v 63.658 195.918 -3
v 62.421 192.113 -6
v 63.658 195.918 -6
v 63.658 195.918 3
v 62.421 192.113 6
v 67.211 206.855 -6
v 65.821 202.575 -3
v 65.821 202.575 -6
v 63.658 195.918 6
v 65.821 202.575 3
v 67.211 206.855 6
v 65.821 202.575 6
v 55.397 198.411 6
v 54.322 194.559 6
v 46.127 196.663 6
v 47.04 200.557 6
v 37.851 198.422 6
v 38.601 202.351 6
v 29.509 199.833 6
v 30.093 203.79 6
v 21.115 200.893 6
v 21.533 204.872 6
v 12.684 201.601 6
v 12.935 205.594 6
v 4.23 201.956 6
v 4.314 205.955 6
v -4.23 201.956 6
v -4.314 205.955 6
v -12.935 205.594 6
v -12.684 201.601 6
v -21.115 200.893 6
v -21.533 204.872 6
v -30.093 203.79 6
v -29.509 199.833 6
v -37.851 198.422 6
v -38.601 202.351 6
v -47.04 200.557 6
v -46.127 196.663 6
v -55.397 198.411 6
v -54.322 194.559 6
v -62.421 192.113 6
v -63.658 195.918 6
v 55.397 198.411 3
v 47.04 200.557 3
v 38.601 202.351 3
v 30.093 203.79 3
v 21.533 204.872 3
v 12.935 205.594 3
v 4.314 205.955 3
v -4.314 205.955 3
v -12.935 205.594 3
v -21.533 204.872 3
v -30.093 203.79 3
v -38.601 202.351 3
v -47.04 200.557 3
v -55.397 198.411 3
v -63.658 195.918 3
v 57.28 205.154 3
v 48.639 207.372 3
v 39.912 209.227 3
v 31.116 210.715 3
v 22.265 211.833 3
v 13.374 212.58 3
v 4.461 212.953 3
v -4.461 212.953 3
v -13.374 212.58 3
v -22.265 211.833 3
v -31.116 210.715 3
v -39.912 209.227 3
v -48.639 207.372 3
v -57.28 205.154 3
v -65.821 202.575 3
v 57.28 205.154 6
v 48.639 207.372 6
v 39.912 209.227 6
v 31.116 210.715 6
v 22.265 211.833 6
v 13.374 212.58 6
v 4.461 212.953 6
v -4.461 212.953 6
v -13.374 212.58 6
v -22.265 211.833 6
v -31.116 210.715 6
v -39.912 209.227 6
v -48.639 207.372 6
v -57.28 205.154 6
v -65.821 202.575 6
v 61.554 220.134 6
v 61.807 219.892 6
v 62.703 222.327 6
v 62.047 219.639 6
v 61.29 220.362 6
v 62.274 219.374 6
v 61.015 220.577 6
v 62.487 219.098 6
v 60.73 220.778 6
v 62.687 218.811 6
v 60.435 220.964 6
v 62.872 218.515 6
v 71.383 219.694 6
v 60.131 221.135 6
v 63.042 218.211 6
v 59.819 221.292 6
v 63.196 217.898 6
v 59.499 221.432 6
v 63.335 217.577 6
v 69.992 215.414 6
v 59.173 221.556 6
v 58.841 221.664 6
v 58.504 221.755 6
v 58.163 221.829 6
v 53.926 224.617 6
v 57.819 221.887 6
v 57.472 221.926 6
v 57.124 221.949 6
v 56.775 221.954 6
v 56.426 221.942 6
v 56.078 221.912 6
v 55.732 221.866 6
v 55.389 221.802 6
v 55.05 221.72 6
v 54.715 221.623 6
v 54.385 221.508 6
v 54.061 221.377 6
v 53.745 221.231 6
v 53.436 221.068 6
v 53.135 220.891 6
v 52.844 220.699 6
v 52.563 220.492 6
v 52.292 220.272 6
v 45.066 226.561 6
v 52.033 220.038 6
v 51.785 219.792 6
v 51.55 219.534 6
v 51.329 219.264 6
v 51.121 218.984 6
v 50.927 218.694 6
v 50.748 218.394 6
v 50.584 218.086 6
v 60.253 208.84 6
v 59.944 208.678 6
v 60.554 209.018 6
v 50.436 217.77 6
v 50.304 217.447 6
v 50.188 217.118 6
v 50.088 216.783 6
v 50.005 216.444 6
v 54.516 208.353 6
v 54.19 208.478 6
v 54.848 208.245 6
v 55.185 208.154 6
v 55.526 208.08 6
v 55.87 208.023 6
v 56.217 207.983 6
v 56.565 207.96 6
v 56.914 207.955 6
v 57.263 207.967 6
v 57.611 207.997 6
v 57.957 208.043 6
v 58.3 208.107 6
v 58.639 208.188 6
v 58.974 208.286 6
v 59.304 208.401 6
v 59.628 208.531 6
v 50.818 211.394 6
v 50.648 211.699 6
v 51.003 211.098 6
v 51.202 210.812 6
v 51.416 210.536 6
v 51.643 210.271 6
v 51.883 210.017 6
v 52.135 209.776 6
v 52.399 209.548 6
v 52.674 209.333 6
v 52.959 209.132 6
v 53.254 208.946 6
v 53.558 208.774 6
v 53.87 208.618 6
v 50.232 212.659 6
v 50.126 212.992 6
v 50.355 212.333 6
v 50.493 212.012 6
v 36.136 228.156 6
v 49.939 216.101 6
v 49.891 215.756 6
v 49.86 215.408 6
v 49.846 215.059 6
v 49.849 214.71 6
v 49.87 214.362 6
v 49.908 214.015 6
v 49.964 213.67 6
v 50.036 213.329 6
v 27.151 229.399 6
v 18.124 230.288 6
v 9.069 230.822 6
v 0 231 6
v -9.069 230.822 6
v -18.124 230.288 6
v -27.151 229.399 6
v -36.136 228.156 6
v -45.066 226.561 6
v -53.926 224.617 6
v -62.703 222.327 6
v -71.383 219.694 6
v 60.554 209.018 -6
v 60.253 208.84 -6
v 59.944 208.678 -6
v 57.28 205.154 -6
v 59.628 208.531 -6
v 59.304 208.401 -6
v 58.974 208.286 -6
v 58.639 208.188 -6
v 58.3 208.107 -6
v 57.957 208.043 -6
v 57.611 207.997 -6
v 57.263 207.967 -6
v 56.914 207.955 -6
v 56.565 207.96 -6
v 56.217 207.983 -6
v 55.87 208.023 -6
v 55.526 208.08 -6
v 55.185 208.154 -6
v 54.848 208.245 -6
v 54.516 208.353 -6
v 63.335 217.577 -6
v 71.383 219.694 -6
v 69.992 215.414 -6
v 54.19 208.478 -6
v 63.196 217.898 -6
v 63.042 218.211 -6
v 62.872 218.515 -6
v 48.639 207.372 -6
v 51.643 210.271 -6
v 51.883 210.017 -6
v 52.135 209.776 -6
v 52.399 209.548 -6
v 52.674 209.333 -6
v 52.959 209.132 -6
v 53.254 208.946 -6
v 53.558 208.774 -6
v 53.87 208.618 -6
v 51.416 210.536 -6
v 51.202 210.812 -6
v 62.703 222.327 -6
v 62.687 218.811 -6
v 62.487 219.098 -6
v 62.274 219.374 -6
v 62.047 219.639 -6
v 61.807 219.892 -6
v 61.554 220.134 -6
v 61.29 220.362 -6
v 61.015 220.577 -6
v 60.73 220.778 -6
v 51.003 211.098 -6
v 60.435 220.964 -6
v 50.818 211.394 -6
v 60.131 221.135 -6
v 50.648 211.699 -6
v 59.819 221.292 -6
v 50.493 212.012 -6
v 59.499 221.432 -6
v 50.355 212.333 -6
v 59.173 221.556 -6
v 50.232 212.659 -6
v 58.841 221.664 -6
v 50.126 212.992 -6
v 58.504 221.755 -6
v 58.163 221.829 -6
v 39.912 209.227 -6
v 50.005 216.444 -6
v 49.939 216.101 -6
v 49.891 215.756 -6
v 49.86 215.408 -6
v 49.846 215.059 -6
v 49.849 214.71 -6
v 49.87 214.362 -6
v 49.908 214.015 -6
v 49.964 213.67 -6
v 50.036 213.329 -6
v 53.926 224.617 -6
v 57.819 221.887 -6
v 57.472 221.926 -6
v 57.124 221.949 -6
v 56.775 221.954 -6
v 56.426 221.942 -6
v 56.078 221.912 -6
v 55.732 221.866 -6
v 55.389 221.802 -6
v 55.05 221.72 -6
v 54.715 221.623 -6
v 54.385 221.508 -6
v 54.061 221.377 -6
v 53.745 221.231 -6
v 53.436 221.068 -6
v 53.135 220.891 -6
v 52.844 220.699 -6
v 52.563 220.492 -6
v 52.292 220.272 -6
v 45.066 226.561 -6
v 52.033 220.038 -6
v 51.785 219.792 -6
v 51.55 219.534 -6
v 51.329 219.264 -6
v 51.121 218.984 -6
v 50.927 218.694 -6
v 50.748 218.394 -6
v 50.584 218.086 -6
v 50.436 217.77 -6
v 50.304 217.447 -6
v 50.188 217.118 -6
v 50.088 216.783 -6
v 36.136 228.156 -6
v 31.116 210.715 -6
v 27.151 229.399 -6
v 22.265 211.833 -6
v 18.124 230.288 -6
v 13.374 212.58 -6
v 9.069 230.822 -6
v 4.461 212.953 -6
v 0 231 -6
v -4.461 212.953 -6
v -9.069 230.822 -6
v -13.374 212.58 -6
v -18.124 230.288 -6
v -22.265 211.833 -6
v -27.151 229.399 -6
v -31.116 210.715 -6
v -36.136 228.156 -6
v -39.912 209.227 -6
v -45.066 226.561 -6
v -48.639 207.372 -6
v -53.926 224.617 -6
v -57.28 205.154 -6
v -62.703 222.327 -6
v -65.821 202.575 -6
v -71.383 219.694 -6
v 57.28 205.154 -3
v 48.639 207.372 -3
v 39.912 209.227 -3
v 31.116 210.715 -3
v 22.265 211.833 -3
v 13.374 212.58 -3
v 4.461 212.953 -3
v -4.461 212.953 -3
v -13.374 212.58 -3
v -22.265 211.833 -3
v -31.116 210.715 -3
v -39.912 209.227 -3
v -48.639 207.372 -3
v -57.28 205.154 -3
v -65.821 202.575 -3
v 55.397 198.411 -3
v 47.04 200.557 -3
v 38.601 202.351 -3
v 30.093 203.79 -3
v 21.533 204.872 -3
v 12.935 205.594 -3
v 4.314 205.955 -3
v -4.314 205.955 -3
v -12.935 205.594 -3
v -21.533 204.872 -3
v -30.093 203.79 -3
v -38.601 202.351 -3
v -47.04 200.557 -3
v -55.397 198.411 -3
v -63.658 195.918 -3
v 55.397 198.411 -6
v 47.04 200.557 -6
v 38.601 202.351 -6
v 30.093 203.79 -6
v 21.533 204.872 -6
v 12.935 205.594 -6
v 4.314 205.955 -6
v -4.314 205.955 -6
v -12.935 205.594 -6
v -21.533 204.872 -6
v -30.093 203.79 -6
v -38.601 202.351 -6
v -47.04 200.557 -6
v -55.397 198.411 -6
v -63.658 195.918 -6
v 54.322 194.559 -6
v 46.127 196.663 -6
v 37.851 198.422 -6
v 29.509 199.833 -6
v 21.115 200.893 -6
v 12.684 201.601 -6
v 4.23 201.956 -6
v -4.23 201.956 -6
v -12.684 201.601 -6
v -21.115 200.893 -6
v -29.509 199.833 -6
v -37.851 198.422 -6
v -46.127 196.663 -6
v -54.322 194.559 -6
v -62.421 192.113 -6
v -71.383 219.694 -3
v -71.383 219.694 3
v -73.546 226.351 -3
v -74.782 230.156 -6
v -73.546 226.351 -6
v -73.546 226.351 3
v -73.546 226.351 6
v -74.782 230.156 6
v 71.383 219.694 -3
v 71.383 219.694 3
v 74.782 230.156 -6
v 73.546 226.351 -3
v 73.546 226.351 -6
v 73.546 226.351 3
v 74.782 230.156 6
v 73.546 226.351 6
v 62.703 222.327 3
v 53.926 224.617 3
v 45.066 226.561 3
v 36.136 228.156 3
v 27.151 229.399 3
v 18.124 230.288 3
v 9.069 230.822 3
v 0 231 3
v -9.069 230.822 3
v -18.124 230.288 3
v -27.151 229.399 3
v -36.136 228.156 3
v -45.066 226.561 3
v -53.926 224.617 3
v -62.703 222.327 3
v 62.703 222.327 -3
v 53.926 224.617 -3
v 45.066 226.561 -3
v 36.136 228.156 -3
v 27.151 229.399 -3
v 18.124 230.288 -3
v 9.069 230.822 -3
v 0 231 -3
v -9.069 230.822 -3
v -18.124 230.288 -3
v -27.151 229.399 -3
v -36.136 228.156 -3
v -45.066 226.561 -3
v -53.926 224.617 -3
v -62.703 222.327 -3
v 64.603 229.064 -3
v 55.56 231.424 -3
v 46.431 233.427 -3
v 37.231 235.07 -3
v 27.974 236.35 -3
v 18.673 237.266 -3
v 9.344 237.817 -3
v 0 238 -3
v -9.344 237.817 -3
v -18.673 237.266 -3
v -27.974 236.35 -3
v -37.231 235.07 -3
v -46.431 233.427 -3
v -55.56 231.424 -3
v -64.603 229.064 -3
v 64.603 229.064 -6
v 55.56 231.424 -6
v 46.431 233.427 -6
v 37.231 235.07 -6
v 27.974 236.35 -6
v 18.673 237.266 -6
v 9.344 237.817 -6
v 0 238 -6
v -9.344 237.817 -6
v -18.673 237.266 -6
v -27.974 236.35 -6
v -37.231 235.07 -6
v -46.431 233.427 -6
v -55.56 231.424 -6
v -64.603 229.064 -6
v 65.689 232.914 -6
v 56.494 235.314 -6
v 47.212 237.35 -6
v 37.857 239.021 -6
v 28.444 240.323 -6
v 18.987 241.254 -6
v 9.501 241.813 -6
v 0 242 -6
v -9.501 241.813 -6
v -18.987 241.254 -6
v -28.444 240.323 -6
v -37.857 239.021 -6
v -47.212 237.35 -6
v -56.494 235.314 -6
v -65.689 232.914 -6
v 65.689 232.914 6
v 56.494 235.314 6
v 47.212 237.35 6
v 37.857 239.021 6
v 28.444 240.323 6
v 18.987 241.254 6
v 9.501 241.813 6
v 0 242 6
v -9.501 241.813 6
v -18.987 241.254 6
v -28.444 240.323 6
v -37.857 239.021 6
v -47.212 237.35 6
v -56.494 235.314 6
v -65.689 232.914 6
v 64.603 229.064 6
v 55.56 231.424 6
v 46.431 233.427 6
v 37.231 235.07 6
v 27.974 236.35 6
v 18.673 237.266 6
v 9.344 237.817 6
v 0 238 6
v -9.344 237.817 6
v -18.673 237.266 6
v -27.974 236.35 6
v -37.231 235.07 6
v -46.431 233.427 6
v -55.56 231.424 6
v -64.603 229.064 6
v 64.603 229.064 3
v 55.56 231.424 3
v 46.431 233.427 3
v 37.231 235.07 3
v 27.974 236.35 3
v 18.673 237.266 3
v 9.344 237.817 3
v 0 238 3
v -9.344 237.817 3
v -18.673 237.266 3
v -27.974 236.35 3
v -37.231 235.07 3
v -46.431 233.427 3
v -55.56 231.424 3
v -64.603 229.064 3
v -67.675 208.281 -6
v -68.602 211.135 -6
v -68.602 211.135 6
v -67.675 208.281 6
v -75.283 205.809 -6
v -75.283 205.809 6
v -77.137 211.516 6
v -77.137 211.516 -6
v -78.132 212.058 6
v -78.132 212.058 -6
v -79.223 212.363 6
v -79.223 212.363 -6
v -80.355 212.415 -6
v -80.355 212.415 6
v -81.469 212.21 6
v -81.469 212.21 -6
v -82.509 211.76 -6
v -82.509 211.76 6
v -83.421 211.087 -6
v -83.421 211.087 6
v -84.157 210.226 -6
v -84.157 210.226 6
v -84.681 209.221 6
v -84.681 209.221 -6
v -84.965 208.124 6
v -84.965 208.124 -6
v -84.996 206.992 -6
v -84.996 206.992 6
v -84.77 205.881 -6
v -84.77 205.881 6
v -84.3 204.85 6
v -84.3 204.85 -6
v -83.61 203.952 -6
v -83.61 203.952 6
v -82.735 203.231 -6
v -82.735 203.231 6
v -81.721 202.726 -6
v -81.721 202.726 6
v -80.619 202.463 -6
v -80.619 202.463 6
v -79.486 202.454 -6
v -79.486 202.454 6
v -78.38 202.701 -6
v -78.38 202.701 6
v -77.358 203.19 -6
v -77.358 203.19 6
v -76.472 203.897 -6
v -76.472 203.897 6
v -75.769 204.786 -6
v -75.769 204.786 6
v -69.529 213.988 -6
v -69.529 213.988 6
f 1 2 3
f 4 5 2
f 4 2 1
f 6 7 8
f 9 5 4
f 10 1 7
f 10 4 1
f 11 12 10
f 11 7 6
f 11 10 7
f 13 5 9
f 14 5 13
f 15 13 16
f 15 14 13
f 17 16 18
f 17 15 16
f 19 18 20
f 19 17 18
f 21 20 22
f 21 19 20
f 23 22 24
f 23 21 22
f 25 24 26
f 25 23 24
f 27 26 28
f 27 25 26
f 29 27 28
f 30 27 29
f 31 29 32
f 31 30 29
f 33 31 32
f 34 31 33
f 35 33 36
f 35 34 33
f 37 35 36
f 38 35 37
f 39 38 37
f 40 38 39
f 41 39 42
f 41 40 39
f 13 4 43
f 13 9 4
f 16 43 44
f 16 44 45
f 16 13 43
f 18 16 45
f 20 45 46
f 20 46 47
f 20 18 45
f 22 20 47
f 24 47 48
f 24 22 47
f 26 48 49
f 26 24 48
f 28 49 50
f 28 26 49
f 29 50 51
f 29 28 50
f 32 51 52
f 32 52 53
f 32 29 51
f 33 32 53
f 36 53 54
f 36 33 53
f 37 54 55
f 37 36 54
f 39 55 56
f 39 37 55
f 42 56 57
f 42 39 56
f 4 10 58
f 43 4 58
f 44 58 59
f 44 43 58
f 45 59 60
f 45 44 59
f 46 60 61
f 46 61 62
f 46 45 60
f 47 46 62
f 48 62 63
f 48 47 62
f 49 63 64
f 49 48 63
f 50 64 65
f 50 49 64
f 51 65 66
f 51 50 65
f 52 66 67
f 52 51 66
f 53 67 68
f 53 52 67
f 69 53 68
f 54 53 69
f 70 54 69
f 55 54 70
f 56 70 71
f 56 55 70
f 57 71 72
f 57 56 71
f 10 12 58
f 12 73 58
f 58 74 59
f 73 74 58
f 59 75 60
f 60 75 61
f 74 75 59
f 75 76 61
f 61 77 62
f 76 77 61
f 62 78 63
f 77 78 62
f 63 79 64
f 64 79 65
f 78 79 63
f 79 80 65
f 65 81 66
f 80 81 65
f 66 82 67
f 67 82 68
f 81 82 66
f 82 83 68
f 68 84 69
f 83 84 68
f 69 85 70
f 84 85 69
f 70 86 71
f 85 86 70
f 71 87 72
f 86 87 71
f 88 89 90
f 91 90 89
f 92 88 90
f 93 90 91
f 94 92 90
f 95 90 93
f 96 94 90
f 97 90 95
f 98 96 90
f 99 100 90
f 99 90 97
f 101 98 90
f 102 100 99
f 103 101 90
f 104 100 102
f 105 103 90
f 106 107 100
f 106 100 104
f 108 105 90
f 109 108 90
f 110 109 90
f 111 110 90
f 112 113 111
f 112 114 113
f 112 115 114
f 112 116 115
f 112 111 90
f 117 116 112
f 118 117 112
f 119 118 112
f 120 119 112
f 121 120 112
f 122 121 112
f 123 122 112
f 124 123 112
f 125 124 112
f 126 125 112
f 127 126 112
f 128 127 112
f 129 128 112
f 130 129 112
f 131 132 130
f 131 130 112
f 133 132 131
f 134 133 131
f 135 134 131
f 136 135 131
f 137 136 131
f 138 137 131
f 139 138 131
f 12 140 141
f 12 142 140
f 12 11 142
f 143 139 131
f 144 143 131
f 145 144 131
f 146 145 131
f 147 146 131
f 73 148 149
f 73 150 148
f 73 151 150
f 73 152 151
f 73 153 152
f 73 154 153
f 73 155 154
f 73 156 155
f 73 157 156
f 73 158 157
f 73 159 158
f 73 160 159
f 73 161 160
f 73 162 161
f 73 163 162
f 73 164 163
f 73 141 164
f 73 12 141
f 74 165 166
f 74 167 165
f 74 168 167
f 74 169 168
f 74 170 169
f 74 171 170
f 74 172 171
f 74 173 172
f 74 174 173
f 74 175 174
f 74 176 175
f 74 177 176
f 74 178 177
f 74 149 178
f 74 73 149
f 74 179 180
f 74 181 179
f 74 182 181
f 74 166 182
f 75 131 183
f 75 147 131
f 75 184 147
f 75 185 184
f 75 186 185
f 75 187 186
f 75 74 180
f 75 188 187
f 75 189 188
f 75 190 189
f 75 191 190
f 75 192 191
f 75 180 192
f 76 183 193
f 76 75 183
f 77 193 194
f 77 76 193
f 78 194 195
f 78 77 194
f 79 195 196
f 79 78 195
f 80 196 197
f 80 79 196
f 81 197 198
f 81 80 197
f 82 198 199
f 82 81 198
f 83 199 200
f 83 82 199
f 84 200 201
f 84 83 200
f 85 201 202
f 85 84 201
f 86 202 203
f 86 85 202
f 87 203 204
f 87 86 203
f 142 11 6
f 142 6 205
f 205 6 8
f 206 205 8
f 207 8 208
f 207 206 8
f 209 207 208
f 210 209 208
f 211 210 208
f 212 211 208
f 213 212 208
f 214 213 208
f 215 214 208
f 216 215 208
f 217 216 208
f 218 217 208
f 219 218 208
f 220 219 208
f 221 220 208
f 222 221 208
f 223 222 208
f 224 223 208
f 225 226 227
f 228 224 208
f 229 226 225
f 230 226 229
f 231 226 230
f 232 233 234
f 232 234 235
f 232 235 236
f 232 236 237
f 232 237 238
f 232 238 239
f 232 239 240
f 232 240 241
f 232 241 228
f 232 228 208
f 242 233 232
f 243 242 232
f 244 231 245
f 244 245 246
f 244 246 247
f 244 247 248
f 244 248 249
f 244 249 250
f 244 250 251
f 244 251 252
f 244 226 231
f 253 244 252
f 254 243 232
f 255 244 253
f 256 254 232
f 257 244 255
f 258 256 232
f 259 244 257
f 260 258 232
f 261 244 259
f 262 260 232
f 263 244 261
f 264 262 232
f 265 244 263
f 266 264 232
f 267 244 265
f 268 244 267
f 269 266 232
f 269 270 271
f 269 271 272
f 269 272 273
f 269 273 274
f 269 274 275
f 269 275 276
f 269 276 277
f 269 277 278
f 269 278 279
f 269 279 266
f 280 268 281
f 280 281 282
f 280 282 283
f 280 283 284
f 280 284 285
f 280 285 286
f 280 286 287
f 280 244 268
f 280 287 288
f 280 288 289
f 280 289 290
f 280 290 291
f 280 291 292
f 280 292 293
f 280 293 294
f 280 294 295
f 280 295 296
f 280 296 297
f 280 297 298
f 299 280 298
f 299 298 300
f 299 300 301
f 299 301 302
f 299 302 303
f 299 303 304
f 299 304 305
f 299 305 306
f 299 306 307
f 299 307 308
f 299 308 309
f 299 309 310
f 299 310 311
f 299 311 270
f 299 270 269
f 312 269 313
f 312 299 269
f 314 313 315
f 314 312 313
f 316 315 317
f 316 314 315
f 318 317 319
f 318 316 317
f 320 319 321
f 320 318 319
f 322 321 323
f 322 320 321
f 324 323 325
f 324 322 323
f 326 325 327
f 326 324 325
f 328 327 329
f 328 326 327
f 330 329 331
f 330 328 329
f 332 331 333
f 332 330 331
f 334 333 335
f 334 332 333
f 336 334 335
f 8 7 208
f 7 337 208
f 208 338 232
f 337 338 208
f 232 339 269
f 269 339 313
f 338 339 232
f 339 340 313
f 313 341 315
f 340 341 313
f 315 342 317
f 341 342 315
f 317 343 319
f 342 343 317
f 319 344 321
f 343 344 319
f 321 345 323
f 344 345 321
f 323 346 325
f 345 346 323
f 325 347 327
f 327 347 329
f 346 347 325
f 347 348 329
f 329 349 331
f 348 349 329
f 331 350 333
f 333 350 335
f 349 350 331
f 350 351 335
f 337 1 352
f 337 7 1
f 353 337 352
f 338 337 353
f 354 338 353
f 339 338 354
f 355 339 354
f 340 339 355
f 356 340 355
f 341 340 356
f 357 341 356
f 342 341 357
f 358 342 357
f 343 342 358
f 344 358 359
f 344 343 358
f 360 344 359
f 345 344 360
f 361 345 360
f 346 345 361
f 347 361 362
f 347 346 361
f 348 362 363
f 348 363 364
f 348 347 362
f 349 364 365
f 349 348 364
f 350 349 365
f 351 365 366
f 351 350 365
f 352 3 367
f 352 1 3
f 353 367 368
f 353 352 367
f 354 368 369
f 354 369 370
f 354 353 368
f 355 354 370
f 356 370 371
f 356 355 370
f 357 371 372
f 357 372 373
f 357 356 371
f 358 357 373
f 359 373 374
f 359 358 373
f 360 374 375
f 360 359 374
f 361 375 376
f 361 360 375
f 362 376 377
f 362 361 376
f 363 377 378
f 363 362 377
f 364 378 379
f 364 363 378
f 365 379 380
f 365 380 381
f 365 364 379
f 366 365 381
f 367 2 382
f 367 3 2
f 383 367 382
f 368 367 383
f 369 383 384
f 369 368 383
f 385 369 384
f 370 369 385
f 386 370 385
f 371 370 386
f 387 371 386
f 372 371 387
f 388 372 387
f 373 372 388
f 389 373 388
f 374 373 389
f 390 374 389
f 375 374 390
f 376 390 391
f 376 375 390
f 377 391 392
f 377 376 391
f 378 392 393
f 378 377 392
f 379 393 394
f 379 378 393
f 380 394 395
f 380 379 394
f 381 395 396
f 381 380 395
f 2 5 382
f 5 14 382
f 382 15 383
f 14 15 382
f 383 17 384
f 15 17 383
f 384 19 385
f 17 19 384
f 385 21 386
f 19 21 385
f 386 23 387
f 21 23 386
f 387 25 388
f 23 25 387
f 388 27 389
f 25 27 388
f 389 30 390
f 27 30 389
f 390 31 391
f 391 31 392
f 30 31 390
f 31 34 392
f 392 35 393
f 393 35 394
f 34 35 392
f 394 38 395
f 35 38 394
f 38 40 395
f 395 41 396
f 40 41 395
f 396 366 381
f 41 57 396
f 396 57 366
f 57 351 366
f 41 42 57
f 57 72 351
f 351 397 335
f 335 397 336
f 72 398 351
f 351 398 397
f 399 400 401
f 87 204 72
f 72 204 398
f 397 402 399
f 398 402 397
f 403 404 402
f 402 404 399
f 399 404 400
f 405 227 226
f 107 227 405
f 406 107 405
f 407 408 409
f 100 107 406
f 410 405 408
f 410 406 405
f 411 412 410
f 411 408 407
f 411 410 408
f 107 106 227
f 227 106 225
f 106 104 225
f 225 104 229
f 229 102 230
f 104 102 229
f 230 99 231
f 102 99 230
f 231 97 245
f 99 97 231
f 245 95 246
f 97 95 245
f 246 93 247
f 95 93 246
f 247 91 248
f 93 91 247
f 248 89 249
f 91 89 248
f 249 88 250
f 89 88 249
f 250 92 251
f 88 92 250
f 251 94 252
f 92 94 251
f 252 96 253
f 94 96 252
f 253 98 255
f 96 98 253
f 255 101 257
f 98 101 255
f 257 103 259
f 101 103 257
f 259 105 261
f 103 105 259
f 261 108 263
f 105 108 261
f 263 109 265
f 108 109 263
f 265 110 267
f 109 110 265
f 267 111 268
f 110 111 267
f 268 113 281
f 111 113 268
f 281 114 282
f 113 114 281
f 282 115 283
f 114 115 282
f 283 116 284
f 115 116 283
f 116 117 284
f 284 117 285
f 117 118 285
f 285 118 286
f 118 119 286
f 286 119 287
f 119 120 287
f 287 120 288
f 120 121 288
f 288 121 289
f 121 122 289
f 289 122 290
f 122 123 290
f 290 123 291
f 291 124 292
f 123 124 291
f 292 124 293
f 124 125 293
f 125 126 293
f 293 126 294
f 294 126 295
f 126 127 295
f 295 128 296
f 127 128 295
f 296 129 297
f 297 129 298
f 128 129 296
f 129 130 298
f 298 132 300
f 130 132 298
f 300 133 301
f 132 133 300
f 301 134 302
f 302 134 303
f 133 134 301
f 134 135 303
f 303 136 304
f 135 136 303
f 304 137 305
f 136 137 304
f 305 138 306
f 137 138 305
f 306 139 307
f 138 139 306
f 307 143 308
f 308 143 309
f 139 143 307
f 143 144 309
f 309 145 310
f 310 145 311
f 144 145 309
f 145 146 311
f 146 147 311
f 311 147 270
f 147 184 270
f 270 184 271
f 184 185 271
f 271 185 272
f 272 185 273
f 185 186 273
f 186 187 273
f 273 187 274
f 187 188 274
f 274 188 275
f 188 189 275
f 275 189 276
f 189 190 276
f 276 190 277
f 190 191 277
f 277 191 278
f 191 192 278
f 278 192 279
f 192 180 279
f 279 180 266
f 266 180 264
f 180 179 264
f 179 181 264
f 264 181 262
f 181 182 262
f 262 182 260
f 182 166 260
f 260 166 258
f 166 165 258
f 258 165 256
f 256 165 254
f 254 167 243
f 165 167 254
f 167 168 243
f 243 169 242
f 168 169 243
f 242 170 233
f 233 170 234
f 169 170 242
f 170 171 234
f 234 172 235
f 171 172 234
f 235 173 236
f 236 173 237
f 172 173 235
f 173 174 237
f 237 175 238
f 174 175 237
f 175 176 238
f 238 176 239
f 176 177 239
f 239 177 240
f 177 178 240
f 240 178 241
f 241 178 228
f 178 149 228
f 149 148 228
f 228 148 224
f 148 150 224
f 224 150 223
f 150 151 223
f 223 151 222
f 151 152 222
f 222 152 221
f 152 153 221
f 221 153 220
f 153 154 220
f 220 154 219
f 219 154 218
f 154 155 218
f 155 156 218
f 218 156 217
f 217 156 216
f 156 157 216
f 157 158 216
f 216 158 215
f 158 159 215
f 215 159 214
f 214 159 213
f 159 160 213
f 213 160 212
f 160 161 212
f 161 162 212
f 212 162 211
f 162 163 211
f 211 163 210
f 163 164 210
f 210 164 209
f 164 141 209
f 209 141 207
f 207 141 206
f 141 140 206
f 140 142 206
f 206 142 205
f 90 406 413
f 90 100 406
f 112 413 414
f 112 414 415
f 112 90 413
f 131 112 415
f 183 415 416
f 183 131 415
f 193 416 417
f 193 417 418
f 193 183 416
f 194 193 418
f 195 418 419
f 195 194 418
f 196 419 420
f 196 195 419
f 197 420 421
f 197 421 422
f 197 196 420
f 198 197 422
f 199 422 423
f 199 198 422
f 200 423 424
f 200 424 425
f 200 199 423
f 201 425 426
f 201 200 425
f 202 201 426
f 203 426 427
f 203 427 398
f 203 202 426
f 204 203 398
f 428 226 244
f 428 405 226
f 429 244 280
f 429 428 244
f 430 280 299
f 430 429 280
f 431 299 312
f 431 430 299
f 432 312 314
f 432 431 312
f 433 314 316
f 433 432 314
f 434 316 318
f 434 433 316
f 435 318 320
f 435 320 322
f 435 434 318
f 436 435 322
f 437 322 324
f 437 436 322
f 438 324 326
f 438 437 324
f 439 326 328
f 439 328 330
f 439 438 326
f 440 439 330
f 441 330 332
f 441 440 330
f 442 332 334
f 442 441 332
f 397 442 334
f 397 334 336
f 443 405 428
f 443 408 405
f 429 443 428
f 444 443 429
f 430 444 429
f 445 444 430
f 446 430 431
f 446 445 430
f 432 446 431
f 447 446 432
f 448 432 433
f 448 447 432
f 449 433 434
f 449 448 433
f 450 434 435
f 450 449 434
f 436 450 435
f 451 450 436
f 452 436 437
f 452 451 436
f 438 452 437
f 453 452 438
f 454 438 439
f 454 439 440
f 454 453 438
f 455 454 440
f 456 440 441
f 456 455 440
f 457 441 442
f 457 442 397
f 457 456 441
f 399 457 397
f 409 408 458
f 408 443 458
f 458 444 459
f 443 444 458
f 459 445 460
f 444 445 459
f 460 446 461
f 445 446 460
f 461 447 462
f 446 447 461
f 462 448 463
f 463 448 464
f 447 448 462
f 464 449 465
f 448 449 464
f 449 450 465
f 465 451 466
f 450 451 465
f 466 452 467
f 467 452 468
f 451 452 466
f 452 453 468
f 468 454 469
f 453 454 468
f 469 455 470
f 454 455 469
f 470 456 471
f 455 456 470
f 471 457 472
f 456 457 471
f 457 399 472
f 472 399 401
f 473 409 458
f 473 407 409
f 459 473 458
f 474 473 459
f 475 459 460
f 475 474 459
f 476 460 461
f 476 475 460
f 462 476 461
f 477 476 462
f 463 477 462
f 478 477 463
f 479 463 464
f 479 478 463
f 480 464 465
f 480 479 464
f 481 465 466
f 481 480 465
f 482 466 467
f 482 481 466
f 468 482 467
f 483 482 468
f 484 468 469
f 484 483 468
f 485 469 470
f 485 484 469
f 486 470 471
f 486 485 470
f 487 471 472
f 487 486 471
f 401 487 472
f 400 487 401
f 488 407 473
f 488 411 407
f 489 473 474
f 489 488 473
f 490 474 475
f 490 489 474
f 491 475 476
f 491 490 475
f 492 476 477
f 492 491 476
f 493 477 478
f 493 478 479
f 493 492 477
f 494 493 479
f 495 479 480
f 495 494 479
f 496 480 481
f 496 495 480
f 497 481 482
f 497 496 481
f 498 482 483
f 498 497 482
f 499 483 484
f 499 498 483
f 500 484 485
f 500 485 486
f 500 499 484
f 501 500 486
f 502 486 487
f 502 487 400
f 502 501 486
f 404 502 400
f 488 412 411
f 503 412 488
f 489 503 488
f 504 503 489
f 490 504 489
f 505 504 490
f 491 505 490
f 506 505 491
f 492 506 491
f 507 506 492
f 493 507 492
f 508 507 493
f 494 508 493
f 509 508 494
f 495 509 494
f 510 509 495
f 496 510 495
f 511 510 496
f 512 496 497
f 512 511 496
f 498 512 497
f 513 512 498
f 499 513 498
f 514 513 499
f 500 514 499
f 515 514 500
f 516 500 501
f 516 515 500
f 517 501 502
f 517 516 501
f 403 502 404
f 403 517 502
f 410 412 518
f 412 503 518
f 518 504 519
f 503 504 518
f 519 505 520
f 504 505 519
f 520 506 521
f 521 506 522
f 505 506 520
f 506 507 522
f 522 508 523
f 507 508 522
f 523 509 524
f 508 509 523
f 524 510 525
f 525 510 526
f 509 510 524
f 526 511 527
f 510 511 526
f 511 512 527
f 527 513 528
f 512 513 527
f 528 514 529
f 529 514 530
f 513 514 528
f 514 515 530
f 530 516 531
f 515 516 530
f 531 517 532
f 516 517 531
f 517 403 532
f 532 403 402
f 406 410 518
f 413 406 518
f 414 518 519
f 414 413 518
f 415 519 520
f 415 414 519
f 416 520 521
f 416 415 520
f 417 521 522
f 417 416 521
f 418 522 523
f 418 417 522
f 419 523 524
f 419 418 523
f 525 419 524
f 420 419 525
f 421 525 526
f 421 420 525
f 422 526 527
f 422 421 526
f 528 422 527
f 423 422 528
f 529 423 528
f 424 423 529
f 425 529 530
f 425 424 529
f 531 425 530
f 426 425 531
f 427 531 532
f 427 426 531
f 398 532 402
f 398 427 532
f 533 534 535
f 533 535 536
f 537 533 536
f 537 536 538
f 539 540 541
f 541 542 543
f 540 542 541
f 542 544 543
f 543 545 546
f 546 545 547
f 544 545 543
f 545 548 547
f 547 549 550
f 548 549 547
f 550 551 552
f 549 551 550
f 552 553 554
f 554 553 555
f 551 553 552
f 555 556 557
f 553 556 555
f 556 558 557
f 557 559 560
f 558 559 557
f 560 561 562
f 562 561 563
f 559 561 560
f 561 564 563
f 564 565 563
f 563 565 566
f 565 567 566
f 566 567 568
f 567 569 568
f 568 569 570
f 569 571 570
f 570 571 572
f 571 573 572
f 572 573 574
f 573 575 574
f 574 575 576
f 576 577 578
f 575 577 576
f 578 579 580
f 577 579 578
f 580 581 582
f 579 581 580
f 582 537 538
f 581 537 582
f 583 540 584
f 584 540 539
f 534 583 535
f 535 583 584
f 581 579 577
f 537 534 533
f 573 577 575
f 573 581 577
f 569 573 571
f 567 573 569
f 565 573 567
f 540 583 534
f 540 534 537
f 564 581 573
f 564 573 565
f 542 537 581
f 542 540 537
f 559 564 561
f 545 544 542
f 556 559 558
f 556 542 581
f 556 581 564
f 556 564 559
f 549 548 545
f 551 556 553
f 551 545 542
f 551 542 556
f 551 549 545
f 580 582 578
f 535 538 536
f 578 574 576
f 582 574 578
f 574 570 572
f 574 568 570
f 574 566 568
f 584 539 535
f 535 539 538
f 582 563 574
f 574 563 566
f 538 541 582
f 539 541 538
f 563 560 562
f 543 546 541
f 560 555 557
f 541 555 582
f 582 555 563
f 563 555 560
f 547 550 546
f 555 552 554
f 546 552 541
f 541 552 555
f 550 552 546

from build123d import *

# Parameters (mm, degrees)
POCKET_DEPTH = 12.001
PAD_DEPTH    = 6


with BuildPart() as body:
    # AdditivePipe: sweep along a path in Sketch
    with BuildLine(Plane.XY) as additivepipe_path:
        ThreePointArc((68.601773, 211.134547), (0, 222), (-68.601773, 211.134547))
    # Sketch002 (on DatumPlane) → AdditivePipe (sweep)
    with BuildSketch(Plane(origin=(-68.601773, 211.134547, 0), x_dir=(-0.309017, 0.951057, 0), z_dir=(0.951057, 0.309017, 0))):
        Polygon((-20, 6), (-20, -6), (-16, -6), (-16, -3), (-9, -3), (-9, -6), (9, -6), (9, -3), (16, -3), (16, -6), (20, -6), (20, 6), (16, 6), (16, 3), (9, 3), (9, 6), (-9, 6), (-9, 3), (-16, 3), (-16, 6), align=None)
    sweep(path=additivepipe_path.line)

    # Sketch004 (on Face18 of AdditivePipe) → Pocket (cut, through all)
    with BuildSketch(Plane(origin=(-68.601773, 211.134547, 6), x_dir=(0.309017, -0.951057, 0), z_dir=(0, 0, 1))):
        with BuildLine():
            Line((38.757651, 133.13336), (34.643154, 127.470241))
            ThreePointArc((34.643154, 127.470241), (31.017586, 114.824218), (41.924307, 122.180173))
            Line((46.038804, 127.843292), (41.924307, 122.180173))
            Line((38.757651, 133.13336), (46.038804, 127.843292))
        make_face()
    extrude(amount=-POCKET_DEPTH, mode=Mode.SUBTRACT)


with BuildPart() as body001:
    # Sketch003 → Pad (new body, symmetric)
    with BuildSketch(Plane.XY):
        with BuildLine():
            Line((-68.601773, 211.134547), (-67.674722, 208.281377))
            Line((-67.674722, 208.281377), (-75.283174, 205.809241))
            ThreePointArc((-77.137276, 211.51558), (-84.769734, 205.881258), (-75.283174, 205.809241))
            Line((-69.528824, 213.987716), (-77.137276, 211.51558))
            Line((-68.601773, 211.134547), (-69.528824, 213.987716))
        make_face()
    extrude(amount=PAD_DEPTH, both=True)


solid = Compound([body.part, body001.part])
